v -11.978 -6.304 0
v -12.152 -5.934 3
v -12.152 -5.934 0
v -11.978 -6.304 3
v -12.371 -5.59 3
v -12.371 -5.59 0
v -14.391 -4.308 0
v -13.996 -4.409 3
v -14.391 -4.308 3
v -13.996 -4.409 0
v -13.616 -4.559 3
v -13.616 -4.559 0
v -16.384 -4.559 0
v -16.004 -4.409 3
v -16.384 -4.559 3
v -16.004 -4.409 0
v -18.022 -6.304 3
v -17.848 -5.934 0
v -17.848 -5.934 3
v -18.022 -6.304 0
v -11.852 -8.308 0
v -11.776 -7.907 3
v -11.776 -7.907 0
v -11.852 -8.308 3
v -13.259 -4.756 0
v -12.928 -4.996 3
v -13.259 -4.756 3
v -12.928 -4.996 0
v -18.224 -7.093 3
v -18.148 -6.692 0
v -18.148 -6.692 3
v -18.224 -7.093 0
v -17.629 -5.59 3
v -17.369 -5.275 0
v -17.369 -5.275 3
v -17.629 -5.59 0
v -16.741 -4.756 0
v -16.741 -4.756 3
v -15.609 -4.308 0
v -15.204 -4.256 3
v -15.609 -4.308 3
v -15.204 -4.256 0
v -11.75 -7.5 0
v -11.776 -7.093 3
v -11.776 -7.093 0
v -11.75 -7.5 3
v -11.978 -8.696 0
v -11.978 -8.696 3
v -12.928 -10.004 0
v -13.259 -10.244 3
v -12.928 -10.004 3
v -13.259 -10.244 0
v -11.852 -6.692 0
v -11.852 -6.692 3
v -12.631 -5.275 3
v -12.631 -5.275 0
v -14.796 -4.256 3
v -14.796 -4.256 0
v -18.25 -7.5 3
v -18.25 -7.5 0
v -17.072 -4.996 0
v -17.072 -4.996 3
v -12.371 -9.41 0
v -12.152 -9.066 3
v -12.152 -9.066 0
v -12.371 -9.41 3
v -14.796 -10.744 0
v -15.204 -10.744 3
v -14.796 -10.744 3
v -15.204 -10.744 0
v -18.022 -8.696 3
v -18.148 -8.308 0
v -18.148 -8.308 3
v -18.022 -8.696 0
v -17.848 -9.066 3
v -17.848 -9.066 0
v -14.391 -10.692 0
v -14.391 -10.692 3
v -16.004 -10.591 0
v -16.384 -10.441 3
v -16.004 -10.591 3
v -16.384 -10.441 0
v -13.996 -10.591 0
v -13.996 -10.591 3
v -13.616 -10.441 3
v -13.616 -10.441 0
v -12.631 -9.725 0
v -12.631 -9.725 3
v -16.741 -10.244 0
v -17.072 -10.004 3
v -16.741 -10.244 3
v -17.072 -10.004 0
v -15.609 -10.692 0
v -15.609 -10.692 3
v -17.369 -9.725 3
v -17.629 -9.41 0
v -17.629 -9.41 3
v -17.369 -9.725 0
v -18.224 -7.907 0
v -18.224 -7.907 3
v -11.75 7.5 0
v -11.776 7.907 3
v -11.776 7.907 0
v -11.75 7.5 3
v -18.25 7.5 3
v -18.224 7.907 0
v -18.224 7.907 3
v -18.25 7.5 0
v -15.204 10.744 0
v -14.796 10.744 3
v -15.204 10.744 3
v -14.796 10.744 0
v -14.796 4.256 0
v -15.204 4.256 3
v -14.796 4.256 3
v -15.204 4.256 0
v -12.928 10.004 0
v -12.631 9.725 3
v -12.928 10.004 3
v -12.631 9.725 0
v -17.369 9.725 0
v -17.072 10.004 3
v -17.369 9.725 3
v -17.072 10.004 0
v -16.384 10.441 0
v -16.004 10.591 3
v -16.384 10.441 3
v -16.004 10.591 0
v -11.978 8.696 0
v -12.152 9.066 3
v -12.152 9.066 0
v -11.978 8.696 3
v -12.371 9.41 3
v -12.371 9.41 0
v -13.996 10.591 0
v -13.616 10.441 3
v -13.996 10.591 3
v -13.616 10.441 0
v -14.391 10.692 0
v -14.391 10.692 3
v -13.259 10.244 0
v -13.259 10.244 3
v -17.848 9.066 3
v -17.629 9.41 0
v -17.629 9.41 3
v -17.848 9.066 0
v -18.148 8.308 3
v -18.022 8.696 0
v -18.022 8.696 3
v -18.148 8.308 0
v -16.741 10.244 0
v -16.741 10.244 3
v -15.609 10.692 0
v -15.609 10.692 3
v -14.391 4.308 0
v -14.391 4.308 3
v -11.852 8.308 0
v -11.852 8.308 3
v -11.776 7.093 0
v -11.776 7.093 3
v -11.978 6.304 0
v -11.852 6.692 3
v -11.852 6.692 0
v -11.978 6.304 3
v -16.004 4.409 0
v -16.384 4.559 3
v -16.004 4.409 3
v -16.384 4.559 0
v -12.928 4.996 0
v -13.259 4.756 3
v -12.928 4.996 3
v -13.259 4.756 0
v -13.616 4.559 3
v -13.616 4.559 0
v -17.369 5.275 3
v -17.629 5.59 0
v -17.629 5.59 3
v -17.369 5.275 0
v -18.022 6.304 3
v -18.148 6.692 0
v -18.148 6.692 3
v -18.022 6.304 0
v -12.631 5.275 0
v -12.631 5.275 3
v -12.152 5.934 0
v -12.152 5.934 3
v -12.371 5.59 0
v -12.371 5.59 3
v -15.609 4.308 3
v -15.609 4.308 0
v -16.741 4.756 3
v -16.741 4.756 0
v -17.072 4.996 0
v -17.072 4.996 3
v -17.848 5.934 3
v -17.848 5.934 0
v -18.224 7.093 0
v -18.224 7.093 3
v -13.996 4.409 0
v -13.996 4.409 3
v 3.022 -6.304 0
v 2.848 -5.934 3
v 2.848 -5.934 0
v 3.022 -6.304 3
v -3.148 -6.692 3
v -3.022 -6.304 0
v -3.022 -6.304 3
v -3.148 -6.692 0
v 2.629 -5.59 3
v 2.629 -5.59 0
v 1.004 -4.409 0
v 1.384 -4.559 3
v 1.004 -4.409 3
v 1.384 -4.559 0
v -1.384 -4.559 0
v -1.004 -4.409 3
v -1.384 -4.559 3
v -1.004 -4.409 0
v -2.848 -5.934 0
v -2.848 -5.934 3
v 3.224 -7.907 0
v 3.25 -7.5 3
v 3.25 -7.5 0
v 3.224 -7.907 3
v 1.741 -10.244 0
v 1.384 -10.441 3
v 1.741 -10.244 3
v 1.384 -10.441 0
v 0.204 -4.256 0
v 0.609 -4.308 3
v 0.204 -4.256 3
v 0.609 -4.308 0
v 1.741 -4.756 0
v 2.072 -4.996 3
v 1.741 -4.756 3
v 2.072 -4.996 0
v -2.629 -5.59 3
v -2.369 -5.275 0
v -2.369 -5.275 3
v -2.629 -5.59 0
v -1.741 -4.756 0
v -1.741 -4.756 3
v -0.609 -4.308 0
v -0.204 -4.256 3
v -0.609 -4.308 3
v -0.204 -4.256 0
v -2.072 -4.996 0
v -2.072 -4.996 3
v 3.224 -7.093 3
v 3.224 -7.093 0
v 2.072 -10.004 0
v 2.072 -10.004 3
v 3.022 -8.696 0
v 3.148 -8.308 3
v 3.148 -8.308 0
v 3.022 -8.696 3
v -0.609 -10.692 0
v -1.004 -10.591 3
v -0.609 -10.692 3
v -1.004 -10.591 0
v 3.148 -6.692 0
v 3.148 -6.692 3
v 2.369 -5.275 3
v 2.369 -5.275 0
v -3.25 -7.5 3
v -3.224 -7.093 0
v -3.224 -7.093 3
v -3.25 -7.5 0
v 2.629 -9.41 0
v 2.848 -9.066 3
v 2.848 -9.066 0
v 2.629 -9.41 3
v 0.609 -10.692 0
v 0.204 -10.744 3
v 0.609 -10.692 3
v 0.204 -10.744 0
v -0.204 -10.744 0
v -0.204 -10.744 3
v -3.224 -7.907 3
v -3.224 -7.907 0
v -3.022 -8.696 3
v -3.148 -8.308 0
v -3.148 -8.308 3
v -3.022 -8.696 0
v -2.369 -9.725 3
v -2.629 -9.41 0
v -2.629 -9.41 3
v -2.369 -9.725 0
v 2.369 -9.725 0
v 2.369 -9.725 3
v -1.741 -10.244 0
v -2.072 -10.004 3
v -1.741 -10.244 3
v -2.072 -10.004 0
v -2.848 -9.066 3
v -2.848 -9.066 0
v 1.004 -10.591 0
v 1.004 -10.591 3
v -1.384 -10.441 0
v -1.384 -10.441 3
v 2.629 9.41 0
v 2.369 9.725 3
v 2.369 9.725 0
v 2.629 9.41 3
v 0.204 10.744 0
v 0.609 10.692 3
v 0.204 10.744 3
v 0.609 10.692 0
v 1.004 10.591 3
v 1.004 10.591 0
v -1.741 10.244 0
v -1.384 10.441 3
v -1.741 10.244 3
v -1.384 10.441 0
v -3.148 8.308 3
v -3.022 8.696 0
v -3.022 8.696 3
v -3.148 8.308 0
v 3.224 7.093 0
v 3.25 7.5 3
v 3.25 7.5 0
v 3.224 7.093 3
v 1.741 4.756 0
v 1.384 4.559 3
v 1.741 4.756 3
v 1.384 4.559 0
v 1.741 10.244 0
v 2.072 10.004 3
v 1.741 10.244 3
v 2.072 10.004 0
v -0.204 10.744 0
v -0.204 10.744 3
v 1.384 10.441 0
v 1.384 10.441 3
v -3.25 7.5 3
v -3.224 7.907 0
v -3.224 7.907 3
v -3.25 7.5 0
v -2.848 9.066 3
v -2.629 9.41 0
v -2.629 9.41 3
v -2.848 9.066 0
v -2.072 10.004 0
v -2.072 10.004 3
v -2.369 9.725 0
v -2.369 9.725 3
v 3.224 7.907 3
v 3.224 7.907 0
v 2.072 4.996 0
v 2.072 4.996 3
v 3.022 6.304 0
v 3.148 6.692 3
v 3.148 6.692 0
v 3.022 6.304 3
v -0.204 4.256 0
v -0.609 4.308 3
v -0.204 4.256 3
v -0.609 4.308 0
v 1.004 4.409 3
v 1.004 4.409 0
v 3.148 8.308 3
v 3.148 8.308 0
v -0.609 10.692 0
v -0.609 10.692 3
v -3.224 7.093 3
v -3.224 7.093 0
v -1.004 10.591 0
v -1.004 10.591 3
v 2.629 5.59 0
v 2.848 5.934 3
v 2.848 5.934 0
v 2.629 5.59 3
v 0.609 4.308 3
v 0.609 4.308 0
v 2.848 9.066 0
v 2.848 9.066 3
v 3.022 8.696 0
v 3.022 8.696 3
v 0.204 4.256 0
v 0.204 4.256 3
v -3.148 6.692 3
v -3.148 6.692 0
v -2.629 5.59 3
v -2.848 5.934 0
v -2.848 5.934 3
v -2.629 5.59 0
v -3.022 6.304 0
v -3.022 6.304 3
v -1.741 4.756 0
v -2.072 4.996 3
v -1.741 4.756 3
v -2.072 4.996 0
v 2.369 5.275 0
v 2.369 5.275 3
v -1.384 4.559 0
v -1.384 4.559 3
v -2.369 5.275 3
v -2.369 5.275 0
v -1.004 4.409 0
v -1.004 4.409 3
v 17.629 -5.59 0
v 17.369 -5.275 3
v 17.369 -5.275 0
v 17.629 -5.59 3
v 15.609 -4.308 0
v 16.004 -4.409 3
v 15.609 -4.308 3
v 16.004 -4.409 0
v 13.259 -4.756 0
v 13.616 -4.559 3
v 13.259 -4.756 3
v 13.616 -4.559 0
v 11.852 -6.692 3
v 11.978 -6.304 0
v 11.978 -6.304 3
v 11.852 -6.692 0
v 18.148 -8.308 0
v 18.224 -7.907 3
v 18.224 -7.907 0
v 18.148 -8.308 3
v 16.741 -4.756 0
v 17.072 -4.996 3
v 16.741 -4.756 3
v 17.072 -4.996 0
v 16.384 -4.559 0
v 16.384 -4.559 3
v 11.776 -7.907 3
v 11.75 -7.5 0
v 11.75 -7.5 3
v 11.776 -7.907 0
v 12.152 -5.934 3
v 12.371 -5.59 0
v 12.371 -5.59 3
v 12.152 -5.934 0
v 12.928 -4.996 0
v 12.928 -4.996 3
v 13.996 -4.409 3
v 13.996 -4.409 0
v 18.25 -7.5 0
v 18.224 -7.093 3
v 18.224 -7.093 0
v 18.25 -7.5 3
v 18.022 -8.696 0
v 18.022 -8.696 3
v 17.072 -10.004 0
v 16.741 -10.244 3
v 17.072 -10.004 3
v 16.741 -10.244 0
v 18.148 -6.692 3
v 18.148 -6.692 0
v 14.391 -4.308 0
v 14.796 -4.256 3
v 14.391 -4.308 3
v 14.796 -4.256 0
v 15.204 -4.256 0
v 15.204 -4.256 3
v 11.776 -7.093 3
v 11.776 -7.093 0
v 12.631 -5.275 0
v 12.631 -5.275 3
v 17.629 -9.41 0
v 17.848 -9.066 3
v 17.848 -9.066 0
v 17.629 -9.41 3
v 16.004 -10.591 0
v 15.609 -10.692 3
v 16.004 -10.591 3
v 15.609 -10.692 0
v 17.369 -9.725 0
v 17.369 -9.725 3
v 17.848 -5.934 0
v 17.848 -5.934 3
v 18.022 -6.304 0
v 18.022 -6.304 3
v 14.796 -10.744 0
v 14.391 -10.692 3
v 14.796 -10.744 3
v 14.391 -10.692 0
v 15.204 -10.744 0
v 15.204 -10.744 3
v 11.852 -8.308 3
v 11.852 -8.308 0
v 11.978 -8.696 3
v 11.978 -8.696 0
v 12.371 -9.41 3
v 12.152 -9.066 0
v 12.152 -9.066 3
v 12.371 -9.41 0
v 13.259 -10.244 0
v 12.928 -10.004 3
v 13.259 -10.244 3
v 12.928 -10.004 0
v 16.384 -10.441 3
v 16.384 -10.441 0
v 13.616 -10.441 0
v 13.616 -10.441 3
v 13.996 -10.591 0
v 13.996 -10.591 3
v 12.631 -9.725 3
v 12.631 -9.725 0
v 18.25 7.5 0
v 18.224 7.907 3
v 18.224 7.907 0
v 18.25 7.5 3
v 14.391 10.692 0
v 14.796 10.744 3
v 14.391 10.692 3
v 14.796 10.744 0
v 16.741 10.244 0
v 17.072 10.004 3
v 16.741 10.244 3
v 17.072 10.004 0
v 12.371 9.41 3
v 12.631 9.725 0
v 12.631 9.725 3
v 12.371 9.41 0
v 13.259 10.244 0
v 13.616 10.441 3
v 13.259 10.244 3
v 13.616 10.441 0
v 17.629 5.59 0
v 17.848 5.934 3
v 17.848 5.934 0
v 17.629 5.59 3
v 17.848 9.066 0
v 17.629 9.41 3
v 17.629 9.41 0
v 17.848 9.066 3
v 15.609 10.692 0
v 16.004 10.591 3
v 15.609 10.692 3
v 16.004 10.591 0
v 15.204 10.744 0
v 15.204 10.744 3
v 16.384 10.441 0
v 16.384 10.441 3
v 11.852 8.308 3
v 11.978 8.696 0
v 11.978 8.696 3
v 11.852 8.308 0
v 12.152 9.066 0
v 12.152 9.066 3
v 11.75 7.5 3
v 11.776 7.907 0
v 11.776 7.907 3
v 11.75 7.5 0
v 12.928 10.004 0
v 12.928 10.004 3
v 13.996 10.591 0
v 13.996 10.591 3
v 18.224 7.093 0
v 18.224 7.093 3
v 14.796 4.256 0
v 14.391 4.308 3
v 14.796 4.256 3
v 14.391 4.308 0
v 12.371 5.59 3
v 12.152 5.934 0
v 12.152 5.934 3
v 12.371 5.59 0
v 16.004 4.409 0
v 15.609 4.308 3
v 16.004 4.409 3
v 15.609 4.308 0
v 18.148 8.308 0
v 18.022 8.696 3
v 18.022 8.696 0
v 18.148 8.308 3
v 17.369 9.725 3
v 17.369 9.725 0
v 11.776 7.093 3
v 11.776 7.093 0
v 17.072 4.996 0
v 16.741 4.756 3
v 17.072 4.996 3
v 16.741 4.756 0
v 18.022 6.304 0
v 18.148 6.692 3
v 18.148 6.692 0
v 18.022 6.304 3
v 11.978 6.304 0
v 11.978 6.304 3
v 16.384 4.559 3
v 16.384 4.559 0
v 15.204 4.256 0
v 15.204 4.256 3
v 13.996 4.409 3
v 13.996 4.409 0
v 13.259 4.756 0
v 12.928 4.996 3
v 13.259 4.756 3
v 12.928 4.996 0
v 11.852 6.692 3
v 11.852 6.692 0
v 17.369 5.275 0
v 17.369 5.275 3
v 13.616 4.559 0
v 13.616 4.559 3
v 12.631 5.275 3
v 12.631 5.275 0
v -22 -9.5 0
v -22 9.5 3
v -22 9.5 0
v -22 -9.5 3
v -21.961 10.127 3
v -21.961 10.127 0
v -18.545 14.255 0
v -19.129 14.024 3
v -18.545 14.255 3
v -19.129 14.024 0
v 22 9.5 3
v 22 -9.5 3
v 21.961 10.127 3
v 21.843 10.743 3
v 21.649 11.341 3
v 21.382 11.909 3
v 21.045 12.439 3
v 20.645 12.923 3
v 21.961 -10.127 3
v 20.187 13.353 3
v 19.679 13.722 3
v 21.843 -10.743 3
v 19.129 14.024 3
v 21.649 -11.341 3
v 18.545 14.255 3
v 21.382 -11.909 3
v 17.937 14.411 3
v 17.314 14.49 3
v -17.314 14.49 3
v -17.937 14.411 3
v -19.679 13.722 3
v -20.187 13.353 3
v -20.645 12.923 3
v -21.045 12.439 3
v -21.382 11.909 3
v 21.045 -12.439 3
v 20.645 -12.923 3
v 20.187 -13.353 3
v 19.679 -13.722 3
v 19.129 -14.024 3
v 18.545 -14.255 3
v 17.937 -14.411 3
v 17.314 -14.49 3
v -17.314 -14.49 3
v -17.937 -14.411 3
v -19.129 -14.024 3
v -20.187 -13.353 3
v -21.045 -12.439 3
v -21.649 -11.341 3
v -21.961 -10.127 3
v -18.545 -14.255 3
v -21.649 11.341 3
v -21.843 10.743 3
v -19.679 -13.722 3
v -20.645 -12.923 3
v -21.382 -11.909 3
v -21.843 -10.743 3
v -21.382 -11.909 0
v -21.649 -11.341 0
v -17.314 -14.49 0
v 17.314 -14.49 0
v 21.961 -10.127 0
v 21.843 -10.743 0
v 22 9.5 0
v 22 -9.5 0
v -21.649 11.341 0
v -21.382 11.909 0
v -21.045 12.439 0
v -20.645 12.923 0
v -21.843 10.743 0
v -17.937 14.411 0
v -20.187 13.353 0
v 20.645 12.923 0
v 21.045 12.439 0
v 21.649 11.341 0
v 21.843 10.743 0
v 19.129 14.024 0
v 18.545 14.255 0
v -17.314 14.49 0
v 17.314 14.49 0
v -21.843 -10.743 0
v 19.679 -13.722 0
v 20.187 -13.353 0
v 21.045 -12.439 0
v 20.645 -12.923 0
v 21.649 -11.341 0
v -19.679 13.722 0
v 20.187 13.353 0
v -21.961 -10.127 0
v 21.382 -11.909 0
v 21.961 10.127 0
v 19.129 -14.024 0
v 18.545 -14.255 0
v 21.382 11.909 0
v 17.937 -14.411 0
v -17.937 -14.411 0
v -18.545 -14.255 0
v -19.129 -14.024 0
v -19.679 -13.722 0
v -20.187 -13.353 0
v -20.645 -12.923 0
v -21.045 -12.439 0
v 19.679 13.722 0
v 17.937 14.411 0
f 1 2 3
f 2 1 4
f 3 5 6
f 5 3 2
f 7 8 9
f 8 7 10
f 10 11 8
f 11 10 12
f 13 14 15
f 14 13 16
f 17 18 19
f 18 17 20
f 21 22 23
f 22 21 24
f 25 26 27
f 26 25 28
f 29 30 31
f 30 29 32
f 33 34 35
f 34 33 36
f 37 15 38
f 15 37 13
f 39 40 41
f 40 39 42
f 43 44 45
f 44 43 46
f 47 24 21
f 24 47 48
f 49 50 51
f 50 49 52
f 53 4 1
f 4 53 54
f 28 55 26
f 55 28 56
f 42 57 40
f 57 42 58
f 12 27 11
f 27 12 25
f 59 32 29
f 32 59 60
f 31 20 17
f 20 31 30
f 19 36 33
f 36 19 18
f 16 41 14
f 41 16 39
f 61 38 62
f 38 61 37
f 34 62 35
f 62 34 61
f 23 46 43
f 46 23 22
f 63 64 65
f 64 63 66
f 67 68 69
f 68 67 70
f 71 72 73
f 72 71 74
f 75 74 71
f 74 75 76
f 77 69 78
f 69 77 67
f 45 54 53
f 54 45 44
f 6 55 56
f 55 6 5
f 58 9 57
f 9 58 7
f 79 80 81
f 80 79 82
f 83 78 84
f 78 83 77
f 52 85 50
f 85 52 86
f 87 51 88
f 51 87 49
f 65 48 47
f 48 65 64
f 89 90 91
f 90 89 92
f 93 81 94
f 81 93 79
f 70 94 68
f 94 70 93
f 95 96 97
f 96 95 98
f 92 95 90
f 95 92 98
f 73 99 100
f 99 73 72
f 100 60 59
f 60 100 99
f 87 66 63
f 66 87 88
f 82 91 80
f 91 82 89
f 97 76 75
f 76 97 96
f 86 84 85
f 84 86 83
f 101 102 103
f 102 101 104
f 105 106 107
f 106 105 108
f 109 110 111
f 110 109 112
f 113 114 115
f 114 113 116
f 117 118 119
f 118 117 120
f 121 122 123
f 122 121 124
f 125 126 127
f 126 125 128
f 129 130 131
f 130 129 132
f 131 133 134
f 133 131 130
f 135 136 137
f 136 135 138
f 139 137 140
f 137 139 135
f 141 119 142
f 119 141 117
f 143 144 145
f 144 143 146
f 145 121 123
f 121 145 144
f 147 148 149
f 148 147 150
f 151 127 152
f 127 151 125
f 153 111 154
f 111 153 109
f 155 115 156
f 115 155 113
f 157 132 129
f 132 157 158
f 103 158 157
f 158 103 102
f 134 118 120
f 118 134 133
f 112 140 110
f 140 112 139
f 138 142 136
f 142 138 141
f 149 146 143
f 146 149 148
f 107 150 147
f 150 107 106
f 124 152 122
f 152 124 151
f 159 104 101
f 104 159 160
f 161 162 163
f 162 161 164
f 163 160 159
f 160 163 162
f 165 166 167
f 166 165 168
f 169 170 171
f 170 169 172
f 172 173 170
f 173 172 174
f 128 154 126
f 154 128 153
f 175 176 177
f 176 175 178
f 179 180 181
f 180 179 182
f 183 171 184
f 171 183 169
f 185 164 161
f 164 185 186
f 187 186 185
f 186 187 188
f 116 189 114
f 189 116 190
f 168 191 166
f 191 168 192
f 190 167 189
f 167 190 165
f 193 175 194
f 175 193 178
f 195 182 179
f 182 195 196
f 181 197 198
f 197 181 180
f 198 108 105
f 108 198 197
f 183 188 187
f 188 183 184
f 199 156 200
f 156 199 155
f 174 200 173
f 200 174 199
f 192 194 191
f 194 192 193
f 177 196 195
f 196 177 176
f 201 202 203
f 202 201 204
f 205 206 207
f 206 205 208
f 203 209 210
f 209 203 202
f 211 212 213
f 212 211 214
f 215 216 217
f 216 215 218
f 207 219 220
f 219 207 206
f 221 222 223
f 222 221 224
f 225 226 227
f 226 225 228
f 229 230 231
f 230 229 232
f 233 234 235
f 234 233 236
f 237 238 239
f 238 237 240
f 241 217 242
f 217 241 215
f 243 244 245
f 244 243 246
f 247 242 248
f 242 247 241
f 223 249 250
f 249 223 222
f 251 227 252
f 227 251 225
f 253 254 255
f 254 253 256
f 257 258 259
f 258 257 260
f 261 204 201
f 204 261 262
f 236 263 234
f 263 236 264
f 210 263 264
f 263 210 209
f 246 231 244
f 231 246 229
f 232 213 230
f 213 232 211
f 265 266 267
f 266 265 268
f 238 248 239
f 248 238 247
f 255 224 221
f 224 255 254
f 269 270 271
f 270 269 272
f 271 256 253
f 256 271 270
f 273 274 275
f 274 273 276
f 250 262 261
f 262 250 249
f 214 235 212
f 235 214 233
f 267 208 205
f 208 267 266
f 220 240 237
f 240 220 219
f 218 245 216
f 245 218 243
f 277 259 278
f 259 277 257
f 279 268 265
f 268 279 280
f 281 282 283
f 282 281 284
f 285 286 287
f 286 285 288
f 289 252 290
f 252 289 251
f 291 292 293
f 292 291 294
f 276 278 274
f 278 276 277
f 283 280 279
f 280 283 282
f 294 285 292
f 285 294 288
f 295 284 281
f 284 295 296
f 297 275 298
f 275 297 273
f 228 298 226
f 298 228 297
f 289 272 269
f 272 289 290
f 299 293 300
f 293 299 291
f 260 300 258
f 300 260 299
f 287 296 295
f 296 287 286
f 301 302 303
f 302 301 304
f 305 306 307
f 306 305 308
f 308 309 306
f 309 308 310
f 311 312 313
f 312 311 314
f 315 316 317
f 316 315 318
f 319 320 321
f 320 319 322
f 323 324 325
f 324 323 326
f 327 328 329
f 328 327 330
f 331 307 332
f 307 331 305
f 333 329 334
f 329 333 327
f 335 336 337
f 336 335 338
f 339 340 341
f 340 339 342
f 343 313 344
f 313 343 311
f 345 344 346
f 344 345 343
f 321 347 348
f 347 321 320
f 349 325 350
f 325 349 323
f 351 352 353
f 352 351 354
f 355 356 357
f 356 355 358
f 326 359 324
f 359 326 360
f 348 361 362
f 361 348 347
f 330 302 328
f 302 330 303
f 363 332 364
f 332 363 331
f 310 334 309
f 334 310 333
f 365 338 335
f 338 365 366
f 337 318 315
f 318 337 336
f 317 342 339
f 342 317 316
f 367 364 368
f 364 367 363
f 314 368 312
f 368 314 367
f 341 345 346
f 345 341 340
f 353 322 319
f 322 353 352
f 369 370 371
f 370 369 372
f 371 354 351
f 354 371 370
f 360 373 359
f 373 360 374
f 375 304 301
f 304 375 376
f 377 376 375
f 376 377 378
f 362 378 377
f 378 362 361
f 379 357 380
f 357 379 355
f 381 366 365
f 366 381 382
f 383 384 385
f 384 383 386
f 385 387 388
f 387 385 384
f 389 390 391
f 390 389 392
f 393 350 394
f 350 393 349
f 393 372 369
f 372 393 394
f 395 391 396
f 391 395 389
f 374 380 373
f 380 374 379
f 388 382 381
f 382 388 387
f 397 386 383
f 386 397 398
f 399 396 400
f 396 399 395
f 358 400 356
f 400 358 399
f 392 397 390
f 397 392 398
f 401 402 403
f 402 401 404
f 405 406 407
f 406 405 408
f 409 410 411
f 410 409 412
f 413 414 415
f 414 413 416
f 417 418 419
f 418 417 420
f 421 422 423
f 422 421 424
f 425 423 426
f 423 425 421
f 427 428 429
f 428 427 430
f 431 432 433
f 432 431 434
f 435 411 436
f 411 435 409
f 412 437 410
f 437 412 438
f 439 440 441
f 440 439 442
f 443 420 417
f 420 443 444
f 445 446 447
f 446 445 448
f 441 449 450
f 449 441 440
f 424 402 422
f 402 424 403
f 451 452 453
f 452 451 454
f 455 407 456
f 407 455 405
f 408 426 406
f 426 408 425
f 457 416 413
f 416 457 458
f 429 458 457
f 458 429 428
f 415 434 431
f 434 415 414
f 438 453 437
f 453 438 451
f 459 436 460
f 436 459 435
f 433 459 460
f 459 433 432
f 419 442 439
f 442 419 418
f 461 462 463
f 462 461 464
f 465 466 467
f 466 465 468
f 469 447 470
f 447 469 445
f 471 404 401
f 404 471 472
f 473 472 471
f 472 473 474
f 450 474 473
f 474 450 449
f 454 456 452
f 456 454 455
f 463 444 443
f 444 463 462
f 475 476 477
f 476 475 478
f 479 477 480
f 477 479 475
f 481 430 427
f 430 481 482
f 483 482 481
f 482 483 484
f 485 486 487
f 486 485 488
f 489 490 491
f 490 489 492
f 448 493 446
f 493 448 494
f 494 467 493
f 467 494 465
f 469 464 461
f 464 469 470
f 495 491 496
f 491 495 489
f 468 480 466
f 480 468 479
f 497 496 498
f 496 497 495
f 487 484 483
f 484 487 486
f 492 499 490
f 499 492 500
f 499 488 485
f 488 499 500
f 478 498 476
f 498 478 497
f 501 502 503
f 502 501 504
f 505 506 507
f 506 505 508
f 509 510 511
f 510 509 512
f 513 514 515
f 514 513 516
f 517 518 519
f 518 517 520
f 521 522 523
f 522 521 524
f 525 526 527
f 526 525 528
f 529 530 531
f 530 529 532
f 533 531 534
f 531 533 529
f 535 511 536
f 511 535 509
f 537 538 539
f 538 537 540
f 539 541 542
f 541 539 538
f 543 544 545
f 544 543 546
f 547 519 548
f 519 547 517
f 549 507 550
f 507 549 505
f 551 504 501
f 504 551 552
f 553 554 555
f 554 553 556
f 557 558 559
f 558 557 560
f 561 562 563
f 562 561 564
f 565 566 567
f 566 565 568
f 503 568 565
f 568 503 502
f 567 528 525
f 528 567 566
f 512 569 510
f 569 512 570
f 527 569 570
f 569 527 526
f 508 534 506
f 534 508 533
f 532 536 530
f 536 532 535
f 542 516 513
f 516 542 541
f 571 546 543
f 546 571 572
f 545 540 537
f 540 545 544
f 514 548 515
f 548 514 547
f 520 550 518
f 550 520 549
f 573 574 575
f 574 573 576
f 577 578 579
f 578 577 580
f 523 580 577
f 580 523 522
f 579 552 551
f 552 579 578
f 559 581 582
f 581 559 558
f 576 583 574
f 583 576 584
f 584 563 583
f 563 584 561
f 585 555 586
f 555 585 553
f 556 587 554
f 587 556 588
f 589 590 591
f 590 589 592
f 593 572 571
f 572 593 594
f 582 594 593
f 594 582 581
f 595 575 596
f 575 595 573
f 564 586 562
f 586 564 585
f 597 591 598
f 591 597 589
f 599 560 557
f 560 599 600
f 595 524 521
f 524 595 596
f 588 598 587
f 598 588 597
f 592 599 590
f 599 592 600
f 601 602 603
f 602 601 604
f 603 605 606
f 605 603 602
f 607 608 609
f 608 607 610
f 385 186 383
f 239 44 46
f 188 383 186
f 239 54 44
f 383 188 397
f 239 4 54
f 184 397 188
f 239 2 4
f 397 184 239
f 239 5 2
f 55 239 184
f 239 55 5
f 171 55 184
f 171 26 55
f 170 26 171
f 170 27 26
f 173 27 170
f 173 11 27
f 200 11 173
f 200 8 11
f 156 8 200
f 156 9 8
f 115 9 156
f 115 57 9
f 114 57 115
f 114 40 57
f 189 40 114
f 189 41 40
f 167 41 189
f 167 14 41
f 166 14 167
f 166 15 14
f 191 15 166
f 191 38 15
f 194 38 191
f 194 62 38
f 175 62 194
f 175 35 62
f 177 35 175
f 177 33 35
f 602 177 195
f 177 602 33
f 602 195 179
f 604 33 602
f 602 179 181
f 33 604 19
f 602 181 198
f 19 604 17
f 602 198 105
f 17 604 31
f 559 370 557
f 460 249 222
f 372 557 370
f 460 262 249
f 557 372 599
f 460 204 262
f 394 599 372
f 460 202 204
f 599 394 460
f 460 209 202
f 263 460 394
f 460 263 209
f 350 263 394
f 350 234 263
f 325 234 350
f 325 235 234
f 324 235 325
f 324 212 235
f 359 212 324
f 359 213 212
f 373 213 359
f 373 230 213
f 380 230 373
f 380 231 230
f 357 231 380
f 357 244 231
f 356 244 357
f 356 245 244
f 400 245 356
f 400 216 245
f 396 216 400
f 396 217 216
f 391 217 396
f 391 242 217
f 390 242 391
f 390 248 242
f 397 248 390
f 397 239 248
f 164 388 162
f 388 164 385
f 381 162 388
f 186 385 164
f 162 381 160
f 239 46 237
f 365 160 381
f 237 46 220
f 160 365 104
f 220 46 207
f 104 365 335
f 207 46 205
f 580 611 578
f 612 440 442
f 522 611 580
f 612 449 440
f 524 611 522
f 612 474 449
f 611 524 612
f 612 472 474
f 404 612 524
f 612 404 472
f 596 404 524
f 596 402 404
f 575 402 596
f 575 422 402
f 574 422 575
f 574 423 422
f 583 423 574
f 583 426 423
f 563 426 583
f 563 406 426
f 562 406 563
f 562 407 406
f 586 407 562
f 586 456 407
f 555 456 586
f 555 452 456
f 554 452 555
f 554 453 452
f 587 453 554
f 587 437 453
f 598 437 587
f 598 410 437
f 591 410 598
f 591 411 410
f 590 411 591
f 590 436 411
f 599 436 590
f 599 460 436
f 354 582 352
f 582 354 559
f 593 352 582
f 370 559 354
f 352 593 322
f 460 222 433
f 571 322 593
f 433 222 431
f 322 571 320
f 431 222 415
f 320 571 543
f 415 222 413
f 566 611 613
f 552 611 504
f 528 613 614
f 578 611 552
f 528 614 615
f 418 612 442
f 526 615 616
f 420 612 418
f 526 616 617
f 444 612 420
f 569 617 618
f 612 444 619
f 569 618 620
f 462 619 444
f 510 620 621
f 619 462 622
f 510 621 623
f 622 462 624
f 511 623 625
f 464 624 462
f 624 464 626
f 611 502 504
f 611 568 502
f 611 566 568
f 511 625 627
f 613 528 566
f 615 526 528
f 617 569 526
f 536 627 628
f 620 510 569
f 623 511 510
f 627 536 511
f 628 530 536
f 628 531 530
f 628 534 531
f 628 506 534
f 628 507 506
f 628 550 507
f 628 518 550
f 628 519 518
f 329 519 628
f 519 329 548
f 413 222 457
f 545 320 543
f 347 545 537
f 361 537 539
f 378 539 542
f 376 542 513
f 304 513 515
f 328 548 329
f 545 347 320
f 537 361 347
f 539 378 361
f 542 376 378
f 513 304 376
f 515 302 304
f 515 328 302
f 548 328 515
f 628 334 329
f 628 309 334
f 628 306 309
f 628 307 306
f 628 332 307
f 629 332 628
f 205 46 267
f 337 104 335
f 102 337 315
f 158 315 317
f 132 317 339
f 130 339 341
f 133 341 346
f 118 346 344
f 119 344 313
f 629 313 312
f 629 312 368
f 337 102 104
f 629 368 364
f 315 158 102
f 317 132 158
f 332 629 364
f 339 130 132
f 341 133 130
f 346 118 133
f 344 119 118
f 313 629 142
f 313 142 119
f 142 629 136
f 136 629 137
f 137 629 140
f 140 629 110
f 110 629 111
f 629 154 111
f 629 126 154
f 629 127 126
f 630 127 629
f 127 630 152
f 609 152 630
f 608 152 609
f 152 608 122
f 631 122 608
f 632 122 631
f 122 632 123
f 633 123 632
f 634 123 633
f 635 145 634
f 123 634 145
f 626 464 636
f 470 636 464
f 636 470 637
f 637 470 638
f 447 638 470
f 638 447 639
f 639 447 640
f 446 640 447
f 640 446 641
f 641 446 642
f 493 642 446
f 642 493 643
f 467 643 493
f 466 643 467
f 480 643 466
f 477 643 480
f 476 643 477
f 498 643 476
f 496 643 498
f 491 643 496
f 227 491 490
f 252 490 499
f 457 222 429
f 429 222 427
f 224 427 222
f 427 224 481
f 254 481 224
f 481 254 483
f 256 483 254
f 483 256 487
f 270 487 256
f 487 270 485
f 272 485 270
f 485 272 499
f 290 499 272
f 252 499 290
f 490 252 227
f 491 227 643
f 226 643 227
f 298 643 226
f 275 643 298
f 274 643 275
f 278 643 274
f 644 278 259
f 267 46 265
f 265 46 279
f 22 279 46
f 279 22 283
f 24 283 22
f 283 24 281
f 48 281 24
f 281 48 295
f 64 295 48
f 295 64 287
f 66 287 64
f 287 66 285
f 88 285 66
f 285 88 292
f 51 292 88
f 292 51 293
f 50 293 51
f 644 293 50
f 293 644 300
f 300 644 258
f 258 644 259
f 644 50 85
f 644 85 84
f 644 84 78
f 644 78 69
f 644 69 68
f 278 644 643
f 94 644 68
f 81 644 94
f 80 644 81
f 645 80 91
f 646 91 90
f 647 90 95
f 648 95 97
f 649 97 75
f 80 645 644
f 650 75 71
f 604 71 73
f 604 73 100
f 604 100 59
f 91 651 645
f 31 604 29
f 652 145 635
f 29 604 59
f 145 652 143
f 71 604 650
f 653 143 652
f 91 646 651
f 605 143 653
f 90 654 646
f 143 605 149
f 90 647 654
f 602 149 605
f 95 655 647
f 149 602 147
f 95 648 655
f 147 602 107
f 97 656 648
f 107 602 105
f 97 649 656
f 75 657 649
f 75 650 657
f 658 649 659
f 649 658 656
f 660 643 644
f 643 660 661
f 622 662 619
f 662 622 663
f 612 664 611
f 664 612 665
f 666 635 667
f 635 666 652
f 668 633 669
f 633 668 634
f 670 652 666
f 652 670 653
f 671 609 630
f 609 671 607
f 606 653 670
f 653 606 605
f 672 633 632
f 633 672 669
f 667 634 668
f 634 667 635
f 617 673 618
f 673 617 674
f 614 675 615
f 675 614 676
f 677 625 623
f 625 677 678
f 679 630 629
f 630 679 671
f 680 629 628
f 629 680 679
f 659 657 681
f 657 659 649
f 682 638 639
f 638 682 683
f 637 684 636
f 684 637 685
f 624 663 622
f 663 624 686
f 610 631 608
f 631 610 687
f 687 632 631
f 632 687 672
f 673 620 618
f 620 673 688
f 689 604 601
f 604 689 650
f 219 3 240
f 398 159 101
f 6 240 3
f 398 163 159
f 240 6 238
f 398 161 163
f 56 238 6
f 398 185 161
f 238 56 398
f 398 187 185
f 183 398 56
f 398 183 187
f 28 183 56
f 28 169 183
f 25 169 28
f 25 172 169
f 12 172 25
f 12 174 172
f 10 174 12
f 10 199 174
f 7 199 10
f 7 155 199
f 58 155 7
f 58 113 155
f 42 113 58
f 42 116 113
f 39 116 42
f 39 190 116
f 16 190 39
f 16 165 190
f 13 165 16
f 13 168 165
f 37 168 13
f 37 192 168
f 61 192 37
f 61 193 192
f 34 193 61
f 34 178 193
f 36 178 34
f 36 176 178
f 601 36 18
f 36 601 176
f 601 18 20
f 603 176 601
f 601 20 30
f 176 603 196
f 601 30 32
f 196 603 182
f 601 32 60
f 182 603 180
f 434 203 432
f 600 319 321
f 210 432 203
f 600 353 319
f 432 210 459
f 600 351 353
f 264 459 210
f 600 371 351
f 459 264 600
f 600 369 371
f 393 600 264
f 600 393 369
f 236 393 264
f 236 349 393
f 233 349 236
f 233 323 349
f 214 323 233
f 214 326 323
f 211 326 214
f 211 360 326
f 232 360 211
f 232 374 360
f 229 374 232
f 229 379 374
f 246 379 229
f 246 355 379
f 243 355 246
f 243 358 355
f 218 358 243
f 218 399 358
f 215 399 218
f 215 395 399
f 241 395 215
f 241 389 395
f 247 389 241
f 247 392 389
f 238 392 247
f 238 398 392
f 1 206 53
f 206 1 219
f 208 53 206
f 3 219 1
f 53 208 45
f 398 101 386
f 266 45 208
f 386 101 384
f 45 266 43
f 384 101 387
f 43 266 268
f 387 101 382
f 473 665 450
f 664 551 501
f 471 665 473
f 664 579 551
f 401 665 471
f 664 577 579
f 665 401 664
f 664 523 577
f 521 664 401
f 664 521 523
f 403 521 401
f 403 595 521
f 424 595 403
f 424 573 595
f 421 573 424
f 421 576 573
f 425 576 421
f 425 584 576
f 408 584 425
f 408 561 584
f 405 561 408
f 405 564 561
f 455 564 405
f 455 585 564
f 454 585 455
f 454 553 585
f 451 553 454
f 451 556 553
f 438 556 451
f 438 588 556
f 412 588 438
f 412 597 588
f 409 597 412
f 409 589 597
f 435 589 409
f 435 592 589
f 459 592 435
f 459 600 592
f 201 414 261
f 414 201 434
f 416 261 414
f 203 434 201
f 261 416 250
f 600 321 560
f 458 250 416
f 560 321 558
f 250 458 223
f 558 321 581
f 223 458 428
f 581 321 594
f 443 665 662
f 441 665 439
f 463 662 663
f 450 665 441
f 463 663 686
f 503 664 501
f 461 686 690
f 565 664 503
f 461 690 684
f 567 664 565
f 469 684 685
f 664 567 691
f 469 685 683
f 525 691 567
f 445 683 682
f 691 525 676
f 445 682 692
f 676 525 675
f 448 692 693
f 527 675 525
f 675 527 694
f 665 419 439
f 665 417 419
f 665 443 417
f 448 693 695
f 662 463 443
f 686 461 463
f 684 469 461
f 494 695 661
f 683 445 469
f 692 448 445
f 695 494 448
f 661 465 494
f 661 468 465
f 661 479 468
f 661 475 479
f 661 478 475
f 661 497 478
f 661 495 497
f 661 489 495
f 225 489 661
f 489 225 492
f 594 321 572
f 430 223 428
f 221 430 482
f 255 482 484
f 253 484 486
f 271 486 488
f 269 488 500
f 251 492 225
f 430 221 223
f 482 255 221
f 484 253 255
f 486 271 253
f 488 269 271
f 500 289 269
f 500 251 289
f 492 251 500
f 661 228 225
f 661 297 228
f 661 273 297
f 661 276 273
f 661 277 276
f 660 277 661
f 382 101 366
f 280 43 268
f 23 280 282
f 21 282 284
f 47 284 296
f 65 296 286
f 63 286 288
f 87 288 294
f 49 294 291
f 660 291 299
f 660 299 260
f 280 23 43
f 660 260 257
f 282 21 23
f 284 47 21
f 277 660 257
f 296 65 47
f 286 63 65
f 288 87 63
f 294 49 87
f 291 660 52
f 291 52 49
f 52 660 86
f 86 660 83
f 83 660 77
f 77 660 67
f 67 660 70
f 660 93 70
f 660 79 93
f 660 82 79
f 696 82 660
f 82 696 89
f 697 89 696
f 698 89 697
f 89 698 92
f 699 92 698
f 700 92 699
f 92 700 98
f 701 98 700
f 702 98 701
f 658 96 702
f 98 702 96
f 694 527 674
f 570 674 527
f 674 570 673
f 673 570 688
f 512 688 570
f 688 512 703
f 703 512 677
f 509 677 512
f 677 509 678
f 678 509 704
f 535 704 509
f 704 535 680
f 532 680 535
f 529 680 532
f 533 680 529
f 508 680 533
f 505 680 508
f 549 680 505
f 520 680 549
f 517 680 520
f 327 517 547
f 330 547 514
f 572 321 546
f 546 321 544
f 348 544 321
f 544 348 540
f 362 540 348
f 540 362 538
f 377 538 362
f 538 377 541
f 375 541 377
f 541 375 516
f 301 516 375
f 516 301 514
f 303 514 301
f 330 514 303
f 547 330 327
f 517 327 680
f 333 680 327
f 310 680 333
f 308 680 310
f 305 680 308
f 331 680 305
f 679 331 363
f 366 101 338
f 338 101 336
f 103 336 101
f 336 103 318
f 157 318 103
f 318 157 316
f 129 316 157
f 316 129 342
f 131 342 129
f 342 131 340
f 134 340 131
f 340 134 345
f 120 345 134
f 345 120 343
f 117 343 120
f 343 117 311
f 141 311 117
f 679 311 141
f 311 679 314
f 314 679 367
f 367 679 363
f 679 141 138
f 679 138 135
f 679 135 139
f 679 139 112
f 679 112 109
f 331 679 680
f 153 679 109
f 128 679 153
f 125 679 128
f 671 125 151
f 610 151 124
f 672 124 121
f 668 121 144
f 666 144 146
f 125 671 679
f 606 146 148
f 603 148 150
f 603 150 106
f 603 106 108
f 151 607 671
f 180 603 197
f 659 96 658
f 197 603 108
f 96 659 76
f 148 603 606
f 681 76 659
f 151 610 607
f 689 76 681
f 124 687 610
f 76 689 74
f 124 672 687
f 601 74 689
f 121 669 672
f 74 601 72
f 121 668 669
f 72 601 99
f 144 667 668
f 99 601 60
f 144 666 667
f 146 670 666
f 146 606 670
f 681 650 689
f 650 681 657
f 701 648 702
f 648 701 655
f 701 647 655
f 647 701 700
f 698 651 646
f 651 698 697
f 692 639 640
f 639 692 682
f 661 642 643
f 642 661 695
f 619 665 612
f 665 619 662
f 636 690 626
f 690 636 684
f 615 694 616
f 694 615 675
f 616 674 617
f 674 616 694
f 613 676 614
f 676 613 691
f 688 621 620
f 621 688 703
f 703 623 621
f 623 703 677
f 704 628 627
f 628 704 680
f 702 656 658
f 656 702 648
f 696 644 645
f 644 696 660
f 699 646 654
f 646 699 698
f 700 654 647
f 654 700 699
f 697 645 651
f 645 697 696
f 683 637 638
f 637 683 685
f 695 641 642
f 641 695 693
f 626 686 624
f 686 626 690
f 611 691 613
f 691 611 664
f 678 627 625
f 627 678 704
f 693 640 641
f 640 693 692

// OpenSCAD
$fn = 50;


difference() {
	union() {
		hull() {
			translate(v = [-17.0000000000, 9.5000000000, 0]) {
				cylinder(h = 3, r = 5);
			}
			translate(v = [17.0000000000, 9.5000000000, 0]) {
				cylinder(h = 3, r = 5);
			}
			translate(v = [-17.0000000000, -9.5000000000, 0]) {
				cylinder(h = 3, r = 5);
			}
			translate(v = [17.0000000000, -9.5000000000, 0]) {
				cylinder(h = 3, r = 5);
			}
		}
	}
	union() {
		translate(v = [-15.0000000000, -7.5000000000, 0]) {
			translate(v = [0, 0, -100]) {
				cylinder(h = 200, r = 3.2500000000);
			}
		}
		translate(v = [-15.0000000000, 7.5000000000, 0]) {
			translate(v = [0, 0, -100]) {
				cylinder(h = 200, r = 3.2500000000);
			}
		}
		translate(v = [0.0000000000, -7.5000000000, 0]) {
			translate(v = [0, 0, -100]) {
				cylinder(h = 200, r = 3.2500000000);
			}
		}
		translate(v = [0.0000000000, 7.5000000000, 0]) {
			translate(v = [0, 0, -100]) {
				cylinder(h = 200, r = 3.2500000000);
			}
		}
		translate(v = [15.0000000000, -7.5000000000, 0]) {
			translate(v = [0, 0, -100]) {
				cylinder(h = 200, r = 3.2500000000);
			}
		}
		translate(v = [15.0000000000, 7.5000000000, 0]) {
			translate(v = [0, 0, -100]) {
				cylinder(h = 200, r = 3.2500000000);
			}
		}
	}
}
